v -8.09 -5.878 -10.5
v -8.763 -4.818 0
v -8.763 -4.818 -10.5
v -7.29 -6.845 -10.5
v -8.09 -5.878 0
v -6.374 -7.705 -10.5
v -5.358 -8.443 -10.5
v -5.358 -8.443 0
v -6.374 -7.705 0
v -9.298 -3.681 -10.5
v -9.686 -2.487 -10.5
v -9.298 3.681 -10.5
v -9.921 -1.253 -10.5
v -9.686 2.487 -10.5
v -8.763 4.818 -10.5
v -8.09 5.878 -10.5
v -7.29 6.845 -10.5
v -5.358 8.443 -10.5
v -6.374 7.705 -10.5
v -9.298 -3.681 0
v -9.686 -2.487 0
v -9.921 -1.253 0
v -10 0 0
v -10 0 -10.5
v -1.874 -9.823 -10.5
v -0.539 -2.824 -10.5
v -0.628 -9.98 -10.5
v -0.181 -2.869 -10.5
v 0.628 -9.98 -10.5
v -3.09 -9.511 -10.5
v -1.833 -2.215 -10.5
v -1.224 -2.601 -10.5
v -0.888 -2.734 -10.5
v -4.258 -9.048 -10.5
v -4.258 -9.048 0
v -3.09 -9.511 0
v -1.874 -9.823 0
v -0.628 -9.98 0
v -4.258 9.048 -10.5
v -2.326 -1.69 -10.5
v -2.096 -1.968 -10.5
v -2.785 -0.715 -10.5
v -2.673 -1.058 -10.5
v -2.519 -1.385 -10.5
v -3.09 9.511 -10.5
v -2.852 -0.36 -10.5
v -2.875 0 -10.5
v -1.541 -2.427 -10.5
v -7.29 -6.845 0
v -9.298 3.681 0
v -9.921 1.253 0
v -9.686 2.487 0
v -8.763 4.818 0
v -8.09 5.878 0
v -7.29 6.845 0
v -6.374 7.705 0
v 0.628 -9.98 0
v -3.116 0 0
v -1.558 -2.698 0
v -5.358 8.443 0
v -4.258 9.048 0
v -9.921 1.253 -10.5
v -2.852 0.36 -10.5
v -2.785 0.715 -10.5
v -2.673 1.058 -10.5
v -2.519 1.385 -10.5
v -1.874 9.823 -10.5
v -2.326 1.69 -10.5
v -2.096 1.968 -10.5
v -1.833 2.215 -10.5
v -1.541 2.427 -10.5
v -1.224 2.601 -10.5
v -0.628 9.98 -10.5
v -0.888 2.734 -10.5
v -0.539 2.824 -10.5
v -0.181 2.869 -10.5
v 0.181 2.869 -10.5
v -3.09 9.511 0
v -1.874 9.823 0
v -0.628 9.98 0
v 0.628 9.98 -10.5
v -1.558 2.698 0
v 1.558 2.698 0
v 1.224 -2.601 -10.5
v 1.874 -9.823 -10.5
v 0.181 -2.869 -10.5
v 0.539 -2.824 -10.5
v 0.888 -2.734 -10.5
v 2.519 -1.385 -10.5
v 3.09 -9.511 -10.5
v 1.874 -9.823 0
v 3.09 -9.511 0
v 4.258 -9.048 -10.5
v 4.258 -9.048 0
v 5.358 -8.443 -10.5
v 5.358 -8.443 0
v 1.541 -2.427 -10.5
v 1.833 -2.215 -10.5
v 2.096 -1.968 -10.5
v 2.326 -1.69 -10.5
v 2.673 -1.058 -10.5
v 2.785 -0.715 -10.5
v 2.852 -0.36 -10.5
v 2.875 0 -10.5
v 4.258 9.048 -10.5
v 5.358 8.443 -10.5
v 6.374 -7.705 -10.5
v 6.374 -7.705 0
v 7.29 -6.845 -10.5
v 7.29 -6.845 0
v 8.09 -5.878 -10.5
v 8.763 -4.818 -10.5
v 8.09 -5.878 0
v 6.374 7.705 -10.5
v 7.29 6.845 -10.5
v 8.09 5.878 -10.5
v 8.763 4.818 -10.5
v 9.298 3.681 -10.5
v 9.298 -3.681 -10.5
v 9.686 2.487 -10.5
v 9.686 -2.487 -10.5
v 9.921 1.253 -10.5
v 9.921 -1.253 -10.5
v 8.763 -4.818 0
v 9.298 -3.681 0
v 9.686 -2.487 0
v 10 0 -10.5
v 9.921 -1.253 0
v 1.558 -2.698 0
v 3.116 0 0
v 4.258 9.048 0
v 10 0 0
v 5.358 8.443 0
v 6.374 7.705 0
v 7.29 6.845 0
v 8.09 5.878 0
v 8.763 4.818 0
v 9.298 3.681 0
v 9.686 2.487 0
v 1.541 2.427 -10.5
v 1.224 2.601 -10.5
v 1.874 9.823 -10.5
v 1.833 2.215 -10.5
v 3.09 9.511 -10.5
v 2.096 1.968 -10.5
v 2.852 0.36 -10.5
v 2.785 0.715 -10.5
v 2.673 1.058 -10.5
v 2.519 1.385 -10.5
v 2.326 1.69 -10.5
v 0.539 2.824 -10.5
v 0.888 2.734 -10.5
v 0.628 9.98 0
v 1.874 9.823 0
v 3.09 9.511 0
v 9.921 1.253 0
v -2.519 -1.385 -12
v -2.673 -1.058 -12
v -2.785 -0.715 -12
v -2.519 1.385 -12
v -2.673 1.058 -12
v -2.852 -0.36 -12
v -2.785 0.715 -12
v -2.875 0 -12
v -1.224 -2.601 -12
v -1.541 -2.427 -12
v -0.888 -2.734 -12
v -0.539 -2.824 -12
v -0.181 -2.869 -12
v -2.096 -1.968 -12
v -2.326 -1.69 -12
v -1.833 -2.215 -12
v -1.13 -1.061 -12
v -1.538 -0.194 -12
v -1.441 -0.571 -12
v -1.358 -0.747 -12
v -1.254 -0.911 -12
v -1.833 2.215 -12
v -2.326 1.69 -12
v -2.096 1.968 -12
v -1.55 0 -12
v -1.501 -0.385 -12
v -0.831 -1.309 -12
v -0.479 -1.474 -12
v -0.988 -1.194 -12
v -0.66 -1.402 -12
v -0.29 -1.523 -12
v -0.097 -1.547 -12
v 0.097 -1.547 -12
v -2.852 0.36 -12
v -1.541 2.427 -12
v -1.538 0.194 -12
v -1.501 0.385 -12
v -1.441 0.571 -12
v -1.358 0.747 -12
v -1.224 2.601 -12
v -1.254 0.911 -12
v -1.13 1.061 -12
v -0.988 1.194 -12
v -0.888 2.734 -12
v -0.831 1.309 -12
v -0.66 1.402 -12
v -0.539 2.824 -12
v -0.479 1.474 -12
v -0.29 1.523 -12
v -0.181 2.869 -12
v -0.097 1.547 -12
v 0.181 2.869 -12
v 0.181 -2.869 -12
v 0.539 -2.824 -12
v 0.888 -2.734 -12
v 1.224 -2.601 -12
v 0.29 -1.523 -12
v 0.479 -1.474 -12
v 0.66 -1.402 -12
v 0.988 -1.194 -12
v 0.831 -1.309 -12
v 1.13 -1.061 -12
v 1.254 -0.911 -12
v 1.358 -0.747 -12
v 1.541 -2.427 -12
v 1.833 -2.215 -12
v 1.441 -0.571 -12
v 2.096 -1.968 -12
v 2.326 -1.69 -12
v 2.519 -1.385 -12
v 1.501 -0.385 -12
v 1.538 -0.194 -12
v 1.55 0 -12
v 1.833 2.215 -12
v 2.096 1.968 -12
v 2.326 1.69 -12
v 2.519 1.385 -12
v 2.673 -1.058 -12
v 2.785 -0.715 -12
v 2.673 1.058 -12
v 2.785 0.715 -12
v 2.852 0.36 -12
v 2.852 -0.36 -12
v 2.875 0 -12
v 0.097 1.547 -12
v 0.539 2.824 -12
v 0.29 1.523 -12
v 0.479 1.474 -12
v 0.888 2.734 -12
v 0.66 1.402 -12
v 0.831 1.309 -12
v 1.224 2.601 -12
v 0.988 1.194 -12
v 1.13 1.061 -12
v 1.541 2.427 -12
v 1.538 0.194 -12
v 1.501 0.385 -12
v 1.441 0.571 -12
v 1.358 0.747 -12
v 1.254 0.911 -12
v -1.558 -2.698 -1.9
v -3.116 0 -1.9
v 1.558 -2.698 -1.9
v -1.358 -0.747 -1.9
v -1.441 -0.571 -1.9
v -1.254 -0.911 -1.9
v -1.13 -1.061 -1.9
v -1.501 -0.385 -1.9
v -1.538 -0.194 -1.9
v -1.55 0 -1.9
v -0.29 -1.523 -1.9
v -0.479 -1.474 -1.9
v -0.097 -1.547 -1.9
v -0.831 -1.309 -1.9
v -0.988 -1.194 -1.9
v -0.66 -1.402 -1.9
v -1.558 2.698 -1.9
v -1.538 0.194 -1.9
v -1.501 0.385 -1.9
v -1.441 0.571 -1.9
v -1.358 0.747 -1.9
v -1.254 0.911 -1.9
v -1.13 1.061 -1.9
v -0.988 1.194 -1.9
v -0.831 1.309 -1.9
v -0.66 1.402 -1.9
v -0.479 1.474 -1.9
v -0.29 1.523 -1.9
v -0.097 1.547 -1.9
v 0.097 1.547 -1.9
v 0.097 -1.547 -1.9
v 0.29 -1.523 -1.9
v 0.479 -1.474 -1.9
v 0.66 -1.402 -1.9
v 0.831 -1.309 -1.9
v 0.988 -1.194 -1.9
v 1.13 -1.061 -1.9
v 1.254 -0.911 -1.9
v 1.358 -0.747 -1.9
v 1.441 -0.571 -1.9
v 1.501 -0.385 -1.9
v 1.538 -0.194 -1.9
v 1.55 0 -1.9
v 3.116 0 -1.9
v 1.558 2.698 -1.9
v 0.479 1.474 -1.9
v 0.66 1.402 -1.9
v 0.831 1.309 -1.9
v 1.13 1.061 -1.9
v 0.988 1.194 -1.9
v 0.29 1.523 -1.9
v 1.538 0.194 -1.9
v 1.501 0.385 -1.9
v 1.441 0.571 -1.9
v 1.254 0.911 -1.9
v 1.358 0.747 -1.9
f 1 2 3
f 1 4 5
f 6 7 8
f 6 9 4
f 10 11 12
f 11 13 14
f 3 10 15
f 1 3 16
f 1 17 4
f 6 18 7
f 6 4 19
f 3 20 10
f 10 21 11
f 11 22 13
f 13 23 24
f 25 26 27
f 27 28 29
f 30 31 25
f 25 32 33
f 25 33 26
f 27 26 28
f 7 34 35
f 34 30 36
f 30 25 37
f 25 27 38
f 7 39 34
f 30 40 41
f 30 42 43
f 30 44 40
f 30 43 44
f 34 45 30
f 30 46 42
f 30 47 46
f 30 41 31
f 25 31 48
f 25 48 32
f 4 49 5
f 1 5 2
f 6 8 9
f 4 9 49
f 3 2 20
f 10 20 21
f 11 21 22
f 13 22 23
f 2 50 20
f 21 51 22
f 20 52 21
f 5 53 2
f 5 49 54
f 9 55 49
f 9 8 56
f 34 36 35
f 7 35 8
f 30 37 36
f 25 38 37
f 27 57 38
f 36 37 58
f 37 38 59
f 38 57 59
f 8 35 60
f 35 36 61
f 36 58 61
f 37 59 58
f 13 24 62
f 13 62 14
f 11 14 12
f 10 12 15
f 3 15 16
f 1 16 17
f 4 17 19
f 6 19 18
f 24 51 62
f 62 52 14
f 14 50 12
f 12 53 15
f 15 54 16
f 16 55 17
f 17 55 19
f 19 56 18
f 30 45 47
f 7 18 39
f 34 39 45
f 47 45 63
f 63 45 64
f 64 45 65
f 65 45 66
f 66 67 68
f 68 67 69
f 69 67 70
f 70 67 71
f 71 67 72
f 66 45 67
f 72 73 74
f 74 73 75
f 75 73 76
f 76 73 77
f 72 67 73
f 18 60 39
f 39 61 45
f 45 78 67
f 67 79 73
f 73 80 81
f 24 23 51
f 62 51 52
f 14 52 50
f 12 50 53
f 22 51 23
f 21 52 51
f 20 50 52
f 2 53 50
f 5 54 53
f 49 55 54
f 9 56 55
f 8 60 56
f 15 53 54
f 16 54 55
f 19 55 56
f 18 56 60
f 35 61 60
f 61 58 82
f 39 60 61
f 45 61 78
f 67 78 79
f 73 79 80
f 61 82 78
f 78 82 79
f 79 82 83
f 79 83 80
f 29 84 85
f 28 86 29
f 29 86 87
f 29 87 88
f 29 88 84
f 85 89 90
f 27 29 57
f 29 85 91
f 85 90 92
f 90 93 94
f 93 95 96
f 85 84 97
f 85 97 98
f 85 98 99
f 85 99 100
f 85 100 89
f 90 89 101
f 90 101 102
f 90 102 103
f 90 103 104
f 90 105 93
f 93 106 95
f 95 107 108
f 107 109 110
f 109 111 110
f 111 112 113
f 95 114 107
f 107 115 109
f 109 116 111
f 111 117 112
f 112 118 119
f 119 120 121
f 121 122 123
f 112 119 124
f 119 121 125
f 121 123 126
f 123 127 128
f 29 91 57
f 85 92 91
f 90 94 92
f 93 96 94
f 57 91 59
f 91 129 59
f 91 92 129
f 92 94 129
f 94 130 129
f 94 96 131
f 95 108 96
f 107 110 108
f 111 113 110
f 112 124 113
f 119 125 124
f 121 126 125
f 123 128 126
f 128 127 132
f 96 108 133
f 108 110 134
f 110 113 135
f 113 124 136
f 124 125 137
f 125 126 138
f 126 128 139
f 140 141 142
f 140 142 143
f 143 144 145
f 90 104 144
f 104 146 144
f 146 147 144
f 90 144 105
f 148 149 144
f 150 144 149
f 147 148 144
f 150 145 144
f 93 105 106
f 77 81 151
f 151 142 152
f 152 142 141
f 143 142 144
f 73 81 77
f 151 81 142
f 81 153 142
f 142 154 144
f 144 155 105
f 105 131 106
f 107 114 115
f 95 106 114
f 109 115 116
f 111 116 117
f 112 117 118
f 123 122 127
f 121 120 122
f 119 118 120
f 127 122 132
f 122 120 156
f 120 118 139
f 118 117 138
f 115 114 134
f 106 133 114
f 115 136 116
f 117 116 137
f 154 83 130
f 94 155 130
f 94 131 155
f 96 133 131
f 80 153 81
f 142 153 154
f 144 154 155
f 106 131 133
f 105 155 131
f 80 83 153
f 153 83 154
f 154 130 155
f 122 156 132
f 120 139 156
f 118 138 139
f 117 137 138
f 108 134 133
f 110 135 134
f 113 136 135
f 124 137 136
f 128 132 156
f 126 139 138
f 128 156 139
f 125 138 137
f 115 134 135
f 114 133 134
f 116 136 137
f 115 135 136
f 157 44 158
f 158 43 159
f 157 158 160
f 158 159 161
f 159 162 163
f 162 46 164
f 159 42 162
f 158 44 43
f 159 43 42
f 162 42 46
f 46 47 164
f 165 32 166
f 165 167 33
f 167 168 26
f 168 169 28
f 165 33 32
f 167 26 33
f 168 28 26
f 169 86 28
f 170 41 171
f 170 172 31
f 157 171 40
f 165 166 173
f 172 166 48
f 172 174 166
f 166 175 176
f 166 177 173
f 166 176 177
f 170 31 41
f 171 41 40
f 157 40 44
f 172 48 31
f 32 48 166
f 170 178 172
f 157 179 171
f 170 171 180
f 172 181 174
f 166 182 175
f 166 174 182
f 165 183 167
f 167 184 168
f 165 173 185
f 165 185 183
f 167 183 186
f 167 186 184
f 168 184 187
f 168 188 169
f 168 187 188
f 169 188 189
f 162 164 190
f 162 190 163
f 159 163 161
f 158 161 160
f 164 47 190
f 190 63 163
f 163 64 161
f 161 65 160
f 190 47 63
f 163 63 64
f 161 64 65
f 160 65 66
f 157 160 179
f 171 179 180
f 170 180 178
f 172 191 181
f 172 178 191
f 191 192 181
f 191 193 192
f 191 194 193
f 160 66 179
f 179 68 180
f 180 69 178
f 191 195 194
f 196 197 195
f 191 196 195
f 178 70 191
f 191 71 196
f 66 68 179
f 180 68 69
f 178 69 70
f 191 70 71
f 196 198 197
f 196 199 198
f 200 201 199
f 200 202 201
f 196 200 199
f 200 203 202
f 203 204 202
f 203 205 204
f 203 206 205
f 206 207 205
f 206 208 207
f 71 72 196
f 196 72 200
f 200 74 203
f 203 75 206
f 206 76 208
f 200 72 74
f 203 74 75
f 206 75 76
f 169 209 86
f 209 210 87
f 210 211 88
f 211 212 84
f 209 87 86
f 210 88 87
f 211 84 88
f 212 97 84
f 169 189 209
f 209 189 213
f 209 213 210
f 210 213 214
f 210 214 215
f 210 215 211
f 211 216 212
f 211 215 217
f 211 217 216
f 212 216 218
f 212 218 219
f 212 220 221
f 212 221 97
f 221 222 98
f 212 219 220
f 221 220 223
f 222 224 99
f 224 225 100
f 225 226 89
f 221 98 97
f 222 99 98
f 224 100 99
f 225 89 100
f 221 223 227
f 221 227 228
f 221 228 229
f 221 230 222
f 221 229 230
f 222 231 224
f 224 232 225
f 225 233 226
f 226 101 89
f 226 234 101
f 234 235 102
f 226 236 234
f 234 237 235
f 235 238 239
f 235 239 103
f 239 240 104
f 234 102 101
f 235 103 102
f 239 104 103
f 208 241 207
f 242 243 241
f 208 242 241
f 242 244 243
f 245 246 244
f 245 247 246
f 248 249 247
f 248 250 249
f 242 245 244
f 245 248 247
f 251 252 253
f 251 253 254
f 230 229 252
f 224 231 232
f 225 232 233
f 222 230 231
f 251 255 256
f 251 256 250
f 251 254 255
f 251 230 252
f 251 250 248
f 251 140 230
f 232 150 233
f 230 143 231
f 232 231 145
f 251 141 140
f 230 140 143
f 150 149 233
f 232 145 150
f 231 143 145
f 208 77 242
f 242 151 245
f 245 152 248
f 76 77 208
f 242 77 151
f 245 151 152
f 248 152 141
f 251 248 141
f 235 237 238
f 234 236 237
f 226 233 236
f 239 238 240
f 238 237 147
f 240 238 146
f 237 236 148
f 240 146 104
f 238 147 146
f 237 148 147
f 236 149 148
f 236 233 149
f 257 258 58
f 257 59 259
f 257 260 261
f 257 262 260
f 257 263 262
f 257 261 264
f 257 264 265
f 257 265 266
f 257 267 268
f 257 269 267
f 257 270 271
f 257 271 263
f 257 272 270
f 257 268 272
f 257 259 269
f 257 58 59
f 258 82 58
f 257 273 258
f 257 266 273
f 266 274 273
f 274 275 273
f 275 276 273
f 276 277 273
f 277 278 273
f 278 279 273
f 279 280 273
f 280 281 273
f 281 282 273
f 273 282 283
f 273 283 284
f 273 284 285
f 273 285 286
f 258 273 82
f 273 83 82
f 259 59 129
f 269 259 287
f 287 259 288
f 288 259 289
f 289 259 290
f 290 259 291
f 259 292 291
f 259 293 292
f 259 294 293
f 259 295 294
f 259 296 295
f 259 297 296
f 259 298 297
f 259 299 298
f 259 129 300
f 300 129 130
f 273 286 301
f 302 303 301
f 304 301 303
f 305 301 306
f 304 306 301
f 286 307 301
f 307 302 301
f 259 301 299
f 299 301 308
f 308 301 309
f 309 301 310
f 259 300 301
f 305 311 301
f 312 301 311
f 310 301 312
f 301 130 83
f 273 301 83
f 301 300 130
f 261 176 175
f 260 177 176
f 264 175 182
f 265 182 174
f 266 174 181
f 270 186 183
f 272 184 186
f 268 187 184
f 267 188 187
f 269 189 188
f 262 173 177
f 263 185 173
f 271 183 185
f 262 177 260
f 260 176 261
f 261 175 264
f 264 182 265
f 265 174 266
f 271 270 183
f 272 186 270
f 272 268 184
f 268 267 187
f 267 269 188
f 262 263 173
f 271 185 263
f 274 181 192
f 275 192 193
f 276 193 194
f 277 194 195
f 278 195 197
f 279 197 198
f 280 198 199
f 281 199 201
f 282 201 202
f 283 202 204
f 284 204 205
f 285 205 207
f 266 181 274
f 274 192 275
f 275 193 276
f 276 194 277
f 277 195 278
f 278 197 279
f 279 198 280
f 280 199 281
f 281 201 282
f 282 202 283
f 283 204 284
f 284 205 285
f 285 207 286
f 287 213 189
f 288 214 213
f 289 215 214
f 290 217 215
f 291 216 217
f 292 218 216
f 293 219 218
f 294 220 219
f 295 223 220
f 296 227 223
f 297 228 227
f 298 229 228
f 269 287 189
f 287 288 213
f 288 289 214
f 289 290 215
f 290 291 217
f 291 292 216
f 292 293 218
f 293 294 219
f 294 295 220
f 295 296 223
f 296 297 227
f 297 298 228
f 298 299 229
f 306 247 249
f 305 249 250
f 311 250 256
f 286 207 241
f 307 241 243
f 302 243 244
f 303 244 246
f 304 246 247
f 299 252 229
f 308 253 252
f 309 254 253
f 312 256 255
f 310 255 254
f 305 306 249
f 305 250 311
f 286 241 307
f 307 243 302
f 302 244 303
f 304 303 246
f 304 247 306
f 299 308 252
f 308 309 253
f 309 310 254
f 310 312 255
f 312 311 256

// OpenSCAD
$fn = 50;

difference() {
	union() {
		translate(v = [0, 0, -10.5]) {
			cylinder(h = 10.5, r = 10.0);
		}
		#translate(v = [0, 0, -12.0]) {
			cylinder(h = 12, r = 2.875);
		}
	}
	union() {
		translate(v = [0, 0, 0]) {
			rotate(a = [0, 0, 0]) {
				difference() {
					union() {
						translate(v = [0, 0, -1.9]) {
							linear_extrude(height = 1.9) {
								polygon(points = [[3.1158, 0.0], [1.5579000000000005, 2.698361953111554], [-1.5578999999999994, 2.6983619531115544], [-3.1158, 3.815754496783323e-16], [-1.5579000000000014, -2.6983619531115535], [1.557899999999998, -2.6983619531115552]]);
							}
						}
					}
					union();
				}
			}
		}
		#translate(v = [0, 0, -100.0]) {
			cylinder(h = 200, r = 1.55);
		}
	}
}
